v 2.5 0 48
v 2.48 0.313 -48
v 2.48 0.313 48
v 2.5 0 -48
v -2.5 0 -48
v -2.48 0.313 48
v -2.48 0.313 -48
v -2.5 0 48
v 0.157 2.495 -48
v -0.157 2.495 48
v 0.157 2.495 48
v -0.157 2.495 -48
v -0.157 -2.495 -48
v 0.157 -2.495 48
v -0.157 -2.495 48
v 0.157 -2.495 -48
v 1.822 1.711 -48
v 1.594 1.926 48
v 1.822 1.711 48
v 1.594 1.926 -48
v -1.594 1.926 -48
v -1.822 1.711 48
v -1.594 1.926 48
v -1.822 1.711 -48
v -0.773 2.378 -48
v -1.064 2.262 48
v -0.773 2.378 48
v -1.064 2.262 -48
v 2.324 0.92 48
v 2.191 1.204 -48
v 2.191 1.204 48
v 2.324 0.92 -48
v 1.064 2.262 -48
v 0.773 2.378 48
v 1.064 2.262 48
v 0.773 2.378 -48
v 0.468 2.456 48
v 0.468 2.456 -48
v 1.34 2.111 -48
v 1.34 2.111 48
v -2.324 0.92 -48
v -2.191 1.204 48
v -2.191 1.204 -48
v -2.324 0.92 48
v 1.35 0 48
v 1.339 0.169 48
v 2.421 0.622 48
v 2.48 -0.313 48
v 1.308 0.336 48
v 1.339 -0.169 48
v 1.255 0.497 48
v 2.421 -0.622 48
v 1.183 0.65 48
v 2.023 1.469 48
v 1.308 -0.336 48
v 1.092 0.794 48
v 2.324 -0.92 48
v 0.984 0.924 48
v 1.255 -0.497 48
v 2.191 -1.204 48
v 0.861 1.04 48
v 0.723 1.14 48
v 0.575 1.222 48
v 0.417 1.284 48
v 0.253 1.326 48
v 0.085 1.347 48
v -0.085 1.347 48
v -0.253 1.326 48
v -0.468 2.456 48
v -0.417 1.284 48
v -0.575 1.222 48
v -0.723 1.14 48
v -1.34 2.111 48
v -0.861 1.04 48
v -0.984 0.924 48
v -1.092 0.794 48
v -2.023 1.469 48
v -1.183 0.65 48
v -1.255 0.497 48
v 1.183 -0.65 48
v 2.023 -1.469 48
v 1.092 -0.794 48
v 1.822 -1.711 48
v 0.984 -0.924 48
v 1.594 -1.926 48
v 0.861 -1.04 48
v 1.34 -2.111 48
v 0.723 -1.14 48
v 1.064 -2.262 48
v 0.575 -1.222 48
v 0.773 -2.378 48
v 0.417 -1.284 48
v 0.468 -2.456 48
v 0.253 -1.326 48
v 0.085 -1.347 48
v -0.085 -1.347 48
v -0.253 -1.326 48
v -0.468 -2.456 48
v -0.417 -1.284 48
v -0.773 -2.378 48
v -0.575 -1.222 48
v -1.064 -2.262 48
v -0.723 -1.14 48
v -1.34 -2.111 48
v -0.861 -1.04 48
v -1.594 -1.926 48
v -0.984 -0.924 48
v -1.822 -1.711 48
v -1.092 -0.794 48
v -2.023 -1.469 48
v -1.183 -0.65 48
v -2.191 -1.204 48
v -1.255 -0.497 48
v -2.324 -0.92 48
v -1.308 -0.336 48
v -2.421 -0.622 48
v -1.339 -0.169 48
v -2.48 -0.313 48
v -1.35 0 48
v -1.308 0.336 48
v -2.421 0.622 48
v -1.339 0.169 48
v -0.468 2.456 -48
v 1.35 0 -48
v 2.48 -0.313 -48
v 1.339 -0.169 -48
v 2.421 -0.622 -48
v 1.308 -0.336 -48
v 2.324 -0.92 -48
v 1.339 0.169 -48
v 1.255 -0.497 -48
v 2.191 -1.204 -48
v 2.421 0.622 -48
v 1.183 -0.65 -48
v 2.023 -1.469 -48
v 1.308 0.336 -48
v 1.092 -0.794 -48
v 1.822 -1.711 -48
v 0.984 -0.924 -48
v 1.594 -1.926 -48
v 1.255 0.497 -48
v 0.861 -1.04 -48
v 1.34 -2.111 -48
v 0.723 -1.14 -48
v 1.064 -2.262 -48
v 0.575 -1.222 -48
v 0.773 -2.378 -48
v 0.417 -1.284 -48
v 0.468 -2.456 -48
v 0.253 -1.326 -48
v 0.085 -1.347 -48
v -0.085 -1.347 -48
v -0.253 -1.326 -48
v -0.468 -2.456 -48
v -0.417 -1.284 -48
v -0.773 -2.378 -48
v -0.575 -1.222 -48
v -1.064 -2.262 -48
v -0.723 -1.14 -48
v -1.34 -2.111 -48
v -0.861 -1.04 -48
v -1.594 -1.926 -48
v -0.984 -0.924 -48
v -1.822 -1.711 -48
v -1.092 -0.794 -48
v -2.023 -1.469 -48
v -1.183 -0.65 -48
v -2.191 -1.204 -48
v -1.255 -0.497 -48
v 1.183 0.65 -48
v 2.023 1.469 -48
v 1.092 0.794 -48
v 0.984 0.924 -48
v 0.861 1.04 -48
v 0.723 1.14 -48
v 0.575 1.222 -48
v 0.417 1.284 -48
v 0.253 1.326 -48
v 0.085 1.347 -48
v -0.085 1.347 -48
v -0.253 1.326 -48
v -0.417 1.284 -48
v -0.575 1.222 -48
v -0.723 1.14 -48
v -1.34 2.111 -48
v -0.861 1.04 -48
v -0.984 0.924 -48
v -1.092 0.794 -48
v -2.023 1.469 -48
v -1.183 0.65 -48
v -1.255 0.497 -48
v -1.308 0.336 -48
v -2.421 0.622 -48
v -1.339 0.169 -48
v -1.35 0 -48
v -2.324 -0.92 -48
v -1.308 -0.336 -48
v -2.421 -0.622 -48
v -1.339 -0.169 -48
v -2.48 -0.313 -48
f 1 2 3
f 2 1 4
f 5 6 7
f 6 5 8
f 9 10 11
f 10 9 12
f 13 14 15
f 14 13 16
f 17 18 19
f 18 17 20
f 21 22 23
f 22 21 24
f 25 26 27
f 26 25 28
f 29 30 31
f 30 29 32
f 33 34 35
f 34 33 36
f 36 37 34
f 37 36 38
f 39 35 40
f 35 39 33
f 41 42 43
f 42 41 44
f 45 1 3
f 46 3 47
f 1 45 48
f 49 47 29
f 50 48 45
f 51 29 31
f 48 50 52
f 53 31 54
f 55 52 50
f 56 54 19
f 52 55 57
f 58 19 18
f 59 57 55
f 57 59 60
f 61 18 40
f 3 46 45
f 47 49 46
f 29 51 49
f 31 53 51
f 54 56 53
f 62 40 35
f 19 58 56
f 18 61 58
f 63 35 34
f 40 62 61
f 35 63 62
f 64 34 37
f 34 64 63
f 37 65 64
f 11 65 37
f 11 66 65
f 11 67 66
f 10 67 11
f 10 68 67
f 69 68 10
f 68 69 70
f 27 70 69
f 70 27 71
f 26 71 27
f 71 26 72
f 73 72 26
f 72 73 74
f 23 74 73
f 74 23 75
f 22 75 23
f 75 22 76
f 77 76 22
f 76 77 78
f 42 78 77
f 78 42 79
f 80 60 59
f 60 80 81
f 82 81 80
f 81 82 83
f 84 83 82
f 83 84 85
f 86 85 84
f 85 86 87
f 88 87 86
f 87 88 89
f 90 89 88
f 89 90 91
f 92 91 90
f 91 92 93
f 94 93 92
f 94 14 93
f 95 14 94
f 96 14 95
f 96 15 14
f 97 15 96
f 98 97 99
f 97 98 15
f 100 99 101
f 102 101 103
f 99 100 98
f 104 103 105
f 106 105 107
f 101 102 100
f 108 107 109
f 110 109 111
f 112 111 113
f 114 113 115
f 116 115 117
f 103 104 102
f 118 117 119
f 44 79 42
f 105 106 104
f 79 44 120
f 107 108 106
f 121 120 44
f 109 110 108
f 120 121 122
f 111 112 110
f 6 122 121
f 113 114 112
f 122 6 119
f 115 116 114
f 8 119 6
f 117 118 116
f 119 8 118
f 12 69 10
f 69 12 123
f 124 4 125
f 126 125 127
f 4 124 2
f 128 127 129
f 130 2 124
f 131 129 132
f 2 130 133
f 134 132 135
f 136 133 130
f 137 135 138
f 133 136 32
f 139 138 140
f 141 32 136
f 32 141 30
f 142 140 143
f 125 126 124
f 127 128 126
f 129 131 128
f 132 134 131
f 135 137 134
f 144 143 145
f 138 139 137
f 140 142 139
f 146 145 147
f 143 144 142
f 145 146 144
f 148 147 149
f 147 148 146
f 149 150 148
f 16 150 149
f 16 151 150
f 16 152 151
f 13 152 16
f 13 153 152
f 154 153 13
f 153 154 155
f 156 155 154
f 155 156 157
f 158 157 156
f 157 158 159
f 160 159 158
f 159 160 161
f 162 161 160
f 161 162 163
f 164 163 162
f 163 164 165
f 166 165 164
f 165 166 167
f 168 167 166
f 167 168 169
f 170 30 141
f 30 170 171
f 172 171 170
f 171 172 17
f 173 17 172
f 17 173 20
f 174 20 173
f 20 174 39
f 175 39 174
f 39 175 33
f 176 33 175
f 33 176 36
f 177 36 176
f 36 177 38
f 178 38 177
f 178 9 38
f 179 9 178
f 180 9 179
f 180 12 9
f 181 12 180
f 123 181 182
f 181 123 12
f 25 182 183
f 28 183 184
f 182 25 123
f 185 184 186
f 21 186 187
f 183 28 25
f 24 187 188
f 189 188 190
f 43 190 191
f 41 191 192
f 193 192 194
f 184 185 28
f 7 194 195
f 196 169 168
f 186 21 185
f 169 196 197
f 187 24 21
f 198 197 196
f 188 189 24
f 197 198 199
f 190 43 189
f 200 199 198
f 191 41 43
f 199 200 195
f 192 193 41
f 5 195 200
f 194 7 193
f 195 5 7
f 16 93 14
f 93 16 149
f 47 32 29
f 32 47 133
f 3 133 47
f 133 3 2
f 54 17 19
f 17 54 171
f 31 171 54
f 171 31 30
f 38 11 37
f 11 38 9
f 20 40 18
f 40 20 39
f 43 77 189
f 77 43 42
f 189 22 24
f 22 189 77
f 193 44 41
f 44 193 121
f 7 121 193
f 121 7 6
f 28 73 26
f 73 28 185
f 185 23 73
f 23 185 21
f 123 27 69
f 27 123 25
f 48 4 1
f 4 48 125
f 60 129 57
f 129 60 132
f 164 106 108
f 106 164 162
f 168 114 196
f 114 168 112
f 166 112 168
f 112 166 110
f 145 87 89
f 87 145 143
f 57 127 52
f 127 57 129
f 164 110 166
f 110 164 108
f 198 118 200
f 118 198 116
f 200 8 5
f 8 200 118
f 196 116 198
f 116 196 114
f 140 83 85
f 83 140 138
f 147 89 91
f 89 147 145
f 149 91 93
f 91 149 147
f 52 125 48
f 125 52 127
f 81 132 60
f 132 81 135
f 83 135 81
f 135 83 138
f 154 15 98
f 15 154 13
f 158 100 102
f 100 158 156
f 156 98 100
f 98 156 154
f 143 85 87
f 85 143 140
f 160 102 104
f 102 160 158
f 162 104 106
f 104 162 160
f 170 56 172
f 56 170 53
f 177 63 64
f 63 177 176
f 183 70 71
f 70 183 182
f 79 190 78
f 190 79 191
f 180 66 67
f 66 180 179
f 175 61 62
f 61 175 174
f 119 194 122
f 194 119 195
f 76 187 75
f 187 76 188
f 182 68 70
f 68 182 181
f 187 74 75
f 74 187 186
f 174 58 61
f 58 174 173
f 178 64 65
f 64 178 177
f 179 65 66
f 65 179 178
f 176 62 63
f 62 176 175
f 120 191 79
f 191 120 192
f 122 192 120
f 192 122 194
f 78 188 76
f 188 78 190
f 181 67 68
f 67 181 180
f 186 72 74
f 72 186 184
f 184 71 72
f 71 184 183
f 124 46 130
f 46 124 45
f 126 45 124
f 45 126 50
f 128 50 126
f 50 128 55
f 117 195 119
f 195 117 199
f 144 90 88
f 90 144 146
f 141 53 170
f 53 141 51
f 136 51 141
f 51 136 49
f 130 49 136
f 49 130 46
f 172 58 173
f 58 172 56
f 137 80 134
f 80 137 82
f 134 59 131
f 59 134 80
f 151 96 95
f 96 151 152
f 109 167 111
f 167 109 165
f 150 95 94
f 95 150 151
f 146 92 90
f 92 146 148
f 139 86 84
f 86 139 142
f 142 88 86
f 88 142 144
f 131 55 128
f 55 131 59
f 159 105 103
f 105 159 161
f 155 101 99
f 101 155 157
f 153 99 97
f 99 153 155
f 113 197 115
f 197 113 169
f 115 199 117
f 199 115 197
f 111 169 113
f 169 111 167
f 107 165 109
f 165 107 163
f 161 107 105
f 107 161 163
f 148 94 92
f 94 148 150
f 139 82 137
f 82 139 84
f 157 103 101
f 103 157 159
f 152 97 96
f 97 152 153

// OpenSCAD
$fn = 50;


difference() {
	union() {
		translate(v = [0, 0, -48.0000000000]) {
			cylinder(h = 96, r = 2.5000000000);
		}
	}
	union() {
		translate(v = [0, 0, -100.0000000000]) {
			cylinder(h = 200, r = 1.3500000000);
		}
	}
}
